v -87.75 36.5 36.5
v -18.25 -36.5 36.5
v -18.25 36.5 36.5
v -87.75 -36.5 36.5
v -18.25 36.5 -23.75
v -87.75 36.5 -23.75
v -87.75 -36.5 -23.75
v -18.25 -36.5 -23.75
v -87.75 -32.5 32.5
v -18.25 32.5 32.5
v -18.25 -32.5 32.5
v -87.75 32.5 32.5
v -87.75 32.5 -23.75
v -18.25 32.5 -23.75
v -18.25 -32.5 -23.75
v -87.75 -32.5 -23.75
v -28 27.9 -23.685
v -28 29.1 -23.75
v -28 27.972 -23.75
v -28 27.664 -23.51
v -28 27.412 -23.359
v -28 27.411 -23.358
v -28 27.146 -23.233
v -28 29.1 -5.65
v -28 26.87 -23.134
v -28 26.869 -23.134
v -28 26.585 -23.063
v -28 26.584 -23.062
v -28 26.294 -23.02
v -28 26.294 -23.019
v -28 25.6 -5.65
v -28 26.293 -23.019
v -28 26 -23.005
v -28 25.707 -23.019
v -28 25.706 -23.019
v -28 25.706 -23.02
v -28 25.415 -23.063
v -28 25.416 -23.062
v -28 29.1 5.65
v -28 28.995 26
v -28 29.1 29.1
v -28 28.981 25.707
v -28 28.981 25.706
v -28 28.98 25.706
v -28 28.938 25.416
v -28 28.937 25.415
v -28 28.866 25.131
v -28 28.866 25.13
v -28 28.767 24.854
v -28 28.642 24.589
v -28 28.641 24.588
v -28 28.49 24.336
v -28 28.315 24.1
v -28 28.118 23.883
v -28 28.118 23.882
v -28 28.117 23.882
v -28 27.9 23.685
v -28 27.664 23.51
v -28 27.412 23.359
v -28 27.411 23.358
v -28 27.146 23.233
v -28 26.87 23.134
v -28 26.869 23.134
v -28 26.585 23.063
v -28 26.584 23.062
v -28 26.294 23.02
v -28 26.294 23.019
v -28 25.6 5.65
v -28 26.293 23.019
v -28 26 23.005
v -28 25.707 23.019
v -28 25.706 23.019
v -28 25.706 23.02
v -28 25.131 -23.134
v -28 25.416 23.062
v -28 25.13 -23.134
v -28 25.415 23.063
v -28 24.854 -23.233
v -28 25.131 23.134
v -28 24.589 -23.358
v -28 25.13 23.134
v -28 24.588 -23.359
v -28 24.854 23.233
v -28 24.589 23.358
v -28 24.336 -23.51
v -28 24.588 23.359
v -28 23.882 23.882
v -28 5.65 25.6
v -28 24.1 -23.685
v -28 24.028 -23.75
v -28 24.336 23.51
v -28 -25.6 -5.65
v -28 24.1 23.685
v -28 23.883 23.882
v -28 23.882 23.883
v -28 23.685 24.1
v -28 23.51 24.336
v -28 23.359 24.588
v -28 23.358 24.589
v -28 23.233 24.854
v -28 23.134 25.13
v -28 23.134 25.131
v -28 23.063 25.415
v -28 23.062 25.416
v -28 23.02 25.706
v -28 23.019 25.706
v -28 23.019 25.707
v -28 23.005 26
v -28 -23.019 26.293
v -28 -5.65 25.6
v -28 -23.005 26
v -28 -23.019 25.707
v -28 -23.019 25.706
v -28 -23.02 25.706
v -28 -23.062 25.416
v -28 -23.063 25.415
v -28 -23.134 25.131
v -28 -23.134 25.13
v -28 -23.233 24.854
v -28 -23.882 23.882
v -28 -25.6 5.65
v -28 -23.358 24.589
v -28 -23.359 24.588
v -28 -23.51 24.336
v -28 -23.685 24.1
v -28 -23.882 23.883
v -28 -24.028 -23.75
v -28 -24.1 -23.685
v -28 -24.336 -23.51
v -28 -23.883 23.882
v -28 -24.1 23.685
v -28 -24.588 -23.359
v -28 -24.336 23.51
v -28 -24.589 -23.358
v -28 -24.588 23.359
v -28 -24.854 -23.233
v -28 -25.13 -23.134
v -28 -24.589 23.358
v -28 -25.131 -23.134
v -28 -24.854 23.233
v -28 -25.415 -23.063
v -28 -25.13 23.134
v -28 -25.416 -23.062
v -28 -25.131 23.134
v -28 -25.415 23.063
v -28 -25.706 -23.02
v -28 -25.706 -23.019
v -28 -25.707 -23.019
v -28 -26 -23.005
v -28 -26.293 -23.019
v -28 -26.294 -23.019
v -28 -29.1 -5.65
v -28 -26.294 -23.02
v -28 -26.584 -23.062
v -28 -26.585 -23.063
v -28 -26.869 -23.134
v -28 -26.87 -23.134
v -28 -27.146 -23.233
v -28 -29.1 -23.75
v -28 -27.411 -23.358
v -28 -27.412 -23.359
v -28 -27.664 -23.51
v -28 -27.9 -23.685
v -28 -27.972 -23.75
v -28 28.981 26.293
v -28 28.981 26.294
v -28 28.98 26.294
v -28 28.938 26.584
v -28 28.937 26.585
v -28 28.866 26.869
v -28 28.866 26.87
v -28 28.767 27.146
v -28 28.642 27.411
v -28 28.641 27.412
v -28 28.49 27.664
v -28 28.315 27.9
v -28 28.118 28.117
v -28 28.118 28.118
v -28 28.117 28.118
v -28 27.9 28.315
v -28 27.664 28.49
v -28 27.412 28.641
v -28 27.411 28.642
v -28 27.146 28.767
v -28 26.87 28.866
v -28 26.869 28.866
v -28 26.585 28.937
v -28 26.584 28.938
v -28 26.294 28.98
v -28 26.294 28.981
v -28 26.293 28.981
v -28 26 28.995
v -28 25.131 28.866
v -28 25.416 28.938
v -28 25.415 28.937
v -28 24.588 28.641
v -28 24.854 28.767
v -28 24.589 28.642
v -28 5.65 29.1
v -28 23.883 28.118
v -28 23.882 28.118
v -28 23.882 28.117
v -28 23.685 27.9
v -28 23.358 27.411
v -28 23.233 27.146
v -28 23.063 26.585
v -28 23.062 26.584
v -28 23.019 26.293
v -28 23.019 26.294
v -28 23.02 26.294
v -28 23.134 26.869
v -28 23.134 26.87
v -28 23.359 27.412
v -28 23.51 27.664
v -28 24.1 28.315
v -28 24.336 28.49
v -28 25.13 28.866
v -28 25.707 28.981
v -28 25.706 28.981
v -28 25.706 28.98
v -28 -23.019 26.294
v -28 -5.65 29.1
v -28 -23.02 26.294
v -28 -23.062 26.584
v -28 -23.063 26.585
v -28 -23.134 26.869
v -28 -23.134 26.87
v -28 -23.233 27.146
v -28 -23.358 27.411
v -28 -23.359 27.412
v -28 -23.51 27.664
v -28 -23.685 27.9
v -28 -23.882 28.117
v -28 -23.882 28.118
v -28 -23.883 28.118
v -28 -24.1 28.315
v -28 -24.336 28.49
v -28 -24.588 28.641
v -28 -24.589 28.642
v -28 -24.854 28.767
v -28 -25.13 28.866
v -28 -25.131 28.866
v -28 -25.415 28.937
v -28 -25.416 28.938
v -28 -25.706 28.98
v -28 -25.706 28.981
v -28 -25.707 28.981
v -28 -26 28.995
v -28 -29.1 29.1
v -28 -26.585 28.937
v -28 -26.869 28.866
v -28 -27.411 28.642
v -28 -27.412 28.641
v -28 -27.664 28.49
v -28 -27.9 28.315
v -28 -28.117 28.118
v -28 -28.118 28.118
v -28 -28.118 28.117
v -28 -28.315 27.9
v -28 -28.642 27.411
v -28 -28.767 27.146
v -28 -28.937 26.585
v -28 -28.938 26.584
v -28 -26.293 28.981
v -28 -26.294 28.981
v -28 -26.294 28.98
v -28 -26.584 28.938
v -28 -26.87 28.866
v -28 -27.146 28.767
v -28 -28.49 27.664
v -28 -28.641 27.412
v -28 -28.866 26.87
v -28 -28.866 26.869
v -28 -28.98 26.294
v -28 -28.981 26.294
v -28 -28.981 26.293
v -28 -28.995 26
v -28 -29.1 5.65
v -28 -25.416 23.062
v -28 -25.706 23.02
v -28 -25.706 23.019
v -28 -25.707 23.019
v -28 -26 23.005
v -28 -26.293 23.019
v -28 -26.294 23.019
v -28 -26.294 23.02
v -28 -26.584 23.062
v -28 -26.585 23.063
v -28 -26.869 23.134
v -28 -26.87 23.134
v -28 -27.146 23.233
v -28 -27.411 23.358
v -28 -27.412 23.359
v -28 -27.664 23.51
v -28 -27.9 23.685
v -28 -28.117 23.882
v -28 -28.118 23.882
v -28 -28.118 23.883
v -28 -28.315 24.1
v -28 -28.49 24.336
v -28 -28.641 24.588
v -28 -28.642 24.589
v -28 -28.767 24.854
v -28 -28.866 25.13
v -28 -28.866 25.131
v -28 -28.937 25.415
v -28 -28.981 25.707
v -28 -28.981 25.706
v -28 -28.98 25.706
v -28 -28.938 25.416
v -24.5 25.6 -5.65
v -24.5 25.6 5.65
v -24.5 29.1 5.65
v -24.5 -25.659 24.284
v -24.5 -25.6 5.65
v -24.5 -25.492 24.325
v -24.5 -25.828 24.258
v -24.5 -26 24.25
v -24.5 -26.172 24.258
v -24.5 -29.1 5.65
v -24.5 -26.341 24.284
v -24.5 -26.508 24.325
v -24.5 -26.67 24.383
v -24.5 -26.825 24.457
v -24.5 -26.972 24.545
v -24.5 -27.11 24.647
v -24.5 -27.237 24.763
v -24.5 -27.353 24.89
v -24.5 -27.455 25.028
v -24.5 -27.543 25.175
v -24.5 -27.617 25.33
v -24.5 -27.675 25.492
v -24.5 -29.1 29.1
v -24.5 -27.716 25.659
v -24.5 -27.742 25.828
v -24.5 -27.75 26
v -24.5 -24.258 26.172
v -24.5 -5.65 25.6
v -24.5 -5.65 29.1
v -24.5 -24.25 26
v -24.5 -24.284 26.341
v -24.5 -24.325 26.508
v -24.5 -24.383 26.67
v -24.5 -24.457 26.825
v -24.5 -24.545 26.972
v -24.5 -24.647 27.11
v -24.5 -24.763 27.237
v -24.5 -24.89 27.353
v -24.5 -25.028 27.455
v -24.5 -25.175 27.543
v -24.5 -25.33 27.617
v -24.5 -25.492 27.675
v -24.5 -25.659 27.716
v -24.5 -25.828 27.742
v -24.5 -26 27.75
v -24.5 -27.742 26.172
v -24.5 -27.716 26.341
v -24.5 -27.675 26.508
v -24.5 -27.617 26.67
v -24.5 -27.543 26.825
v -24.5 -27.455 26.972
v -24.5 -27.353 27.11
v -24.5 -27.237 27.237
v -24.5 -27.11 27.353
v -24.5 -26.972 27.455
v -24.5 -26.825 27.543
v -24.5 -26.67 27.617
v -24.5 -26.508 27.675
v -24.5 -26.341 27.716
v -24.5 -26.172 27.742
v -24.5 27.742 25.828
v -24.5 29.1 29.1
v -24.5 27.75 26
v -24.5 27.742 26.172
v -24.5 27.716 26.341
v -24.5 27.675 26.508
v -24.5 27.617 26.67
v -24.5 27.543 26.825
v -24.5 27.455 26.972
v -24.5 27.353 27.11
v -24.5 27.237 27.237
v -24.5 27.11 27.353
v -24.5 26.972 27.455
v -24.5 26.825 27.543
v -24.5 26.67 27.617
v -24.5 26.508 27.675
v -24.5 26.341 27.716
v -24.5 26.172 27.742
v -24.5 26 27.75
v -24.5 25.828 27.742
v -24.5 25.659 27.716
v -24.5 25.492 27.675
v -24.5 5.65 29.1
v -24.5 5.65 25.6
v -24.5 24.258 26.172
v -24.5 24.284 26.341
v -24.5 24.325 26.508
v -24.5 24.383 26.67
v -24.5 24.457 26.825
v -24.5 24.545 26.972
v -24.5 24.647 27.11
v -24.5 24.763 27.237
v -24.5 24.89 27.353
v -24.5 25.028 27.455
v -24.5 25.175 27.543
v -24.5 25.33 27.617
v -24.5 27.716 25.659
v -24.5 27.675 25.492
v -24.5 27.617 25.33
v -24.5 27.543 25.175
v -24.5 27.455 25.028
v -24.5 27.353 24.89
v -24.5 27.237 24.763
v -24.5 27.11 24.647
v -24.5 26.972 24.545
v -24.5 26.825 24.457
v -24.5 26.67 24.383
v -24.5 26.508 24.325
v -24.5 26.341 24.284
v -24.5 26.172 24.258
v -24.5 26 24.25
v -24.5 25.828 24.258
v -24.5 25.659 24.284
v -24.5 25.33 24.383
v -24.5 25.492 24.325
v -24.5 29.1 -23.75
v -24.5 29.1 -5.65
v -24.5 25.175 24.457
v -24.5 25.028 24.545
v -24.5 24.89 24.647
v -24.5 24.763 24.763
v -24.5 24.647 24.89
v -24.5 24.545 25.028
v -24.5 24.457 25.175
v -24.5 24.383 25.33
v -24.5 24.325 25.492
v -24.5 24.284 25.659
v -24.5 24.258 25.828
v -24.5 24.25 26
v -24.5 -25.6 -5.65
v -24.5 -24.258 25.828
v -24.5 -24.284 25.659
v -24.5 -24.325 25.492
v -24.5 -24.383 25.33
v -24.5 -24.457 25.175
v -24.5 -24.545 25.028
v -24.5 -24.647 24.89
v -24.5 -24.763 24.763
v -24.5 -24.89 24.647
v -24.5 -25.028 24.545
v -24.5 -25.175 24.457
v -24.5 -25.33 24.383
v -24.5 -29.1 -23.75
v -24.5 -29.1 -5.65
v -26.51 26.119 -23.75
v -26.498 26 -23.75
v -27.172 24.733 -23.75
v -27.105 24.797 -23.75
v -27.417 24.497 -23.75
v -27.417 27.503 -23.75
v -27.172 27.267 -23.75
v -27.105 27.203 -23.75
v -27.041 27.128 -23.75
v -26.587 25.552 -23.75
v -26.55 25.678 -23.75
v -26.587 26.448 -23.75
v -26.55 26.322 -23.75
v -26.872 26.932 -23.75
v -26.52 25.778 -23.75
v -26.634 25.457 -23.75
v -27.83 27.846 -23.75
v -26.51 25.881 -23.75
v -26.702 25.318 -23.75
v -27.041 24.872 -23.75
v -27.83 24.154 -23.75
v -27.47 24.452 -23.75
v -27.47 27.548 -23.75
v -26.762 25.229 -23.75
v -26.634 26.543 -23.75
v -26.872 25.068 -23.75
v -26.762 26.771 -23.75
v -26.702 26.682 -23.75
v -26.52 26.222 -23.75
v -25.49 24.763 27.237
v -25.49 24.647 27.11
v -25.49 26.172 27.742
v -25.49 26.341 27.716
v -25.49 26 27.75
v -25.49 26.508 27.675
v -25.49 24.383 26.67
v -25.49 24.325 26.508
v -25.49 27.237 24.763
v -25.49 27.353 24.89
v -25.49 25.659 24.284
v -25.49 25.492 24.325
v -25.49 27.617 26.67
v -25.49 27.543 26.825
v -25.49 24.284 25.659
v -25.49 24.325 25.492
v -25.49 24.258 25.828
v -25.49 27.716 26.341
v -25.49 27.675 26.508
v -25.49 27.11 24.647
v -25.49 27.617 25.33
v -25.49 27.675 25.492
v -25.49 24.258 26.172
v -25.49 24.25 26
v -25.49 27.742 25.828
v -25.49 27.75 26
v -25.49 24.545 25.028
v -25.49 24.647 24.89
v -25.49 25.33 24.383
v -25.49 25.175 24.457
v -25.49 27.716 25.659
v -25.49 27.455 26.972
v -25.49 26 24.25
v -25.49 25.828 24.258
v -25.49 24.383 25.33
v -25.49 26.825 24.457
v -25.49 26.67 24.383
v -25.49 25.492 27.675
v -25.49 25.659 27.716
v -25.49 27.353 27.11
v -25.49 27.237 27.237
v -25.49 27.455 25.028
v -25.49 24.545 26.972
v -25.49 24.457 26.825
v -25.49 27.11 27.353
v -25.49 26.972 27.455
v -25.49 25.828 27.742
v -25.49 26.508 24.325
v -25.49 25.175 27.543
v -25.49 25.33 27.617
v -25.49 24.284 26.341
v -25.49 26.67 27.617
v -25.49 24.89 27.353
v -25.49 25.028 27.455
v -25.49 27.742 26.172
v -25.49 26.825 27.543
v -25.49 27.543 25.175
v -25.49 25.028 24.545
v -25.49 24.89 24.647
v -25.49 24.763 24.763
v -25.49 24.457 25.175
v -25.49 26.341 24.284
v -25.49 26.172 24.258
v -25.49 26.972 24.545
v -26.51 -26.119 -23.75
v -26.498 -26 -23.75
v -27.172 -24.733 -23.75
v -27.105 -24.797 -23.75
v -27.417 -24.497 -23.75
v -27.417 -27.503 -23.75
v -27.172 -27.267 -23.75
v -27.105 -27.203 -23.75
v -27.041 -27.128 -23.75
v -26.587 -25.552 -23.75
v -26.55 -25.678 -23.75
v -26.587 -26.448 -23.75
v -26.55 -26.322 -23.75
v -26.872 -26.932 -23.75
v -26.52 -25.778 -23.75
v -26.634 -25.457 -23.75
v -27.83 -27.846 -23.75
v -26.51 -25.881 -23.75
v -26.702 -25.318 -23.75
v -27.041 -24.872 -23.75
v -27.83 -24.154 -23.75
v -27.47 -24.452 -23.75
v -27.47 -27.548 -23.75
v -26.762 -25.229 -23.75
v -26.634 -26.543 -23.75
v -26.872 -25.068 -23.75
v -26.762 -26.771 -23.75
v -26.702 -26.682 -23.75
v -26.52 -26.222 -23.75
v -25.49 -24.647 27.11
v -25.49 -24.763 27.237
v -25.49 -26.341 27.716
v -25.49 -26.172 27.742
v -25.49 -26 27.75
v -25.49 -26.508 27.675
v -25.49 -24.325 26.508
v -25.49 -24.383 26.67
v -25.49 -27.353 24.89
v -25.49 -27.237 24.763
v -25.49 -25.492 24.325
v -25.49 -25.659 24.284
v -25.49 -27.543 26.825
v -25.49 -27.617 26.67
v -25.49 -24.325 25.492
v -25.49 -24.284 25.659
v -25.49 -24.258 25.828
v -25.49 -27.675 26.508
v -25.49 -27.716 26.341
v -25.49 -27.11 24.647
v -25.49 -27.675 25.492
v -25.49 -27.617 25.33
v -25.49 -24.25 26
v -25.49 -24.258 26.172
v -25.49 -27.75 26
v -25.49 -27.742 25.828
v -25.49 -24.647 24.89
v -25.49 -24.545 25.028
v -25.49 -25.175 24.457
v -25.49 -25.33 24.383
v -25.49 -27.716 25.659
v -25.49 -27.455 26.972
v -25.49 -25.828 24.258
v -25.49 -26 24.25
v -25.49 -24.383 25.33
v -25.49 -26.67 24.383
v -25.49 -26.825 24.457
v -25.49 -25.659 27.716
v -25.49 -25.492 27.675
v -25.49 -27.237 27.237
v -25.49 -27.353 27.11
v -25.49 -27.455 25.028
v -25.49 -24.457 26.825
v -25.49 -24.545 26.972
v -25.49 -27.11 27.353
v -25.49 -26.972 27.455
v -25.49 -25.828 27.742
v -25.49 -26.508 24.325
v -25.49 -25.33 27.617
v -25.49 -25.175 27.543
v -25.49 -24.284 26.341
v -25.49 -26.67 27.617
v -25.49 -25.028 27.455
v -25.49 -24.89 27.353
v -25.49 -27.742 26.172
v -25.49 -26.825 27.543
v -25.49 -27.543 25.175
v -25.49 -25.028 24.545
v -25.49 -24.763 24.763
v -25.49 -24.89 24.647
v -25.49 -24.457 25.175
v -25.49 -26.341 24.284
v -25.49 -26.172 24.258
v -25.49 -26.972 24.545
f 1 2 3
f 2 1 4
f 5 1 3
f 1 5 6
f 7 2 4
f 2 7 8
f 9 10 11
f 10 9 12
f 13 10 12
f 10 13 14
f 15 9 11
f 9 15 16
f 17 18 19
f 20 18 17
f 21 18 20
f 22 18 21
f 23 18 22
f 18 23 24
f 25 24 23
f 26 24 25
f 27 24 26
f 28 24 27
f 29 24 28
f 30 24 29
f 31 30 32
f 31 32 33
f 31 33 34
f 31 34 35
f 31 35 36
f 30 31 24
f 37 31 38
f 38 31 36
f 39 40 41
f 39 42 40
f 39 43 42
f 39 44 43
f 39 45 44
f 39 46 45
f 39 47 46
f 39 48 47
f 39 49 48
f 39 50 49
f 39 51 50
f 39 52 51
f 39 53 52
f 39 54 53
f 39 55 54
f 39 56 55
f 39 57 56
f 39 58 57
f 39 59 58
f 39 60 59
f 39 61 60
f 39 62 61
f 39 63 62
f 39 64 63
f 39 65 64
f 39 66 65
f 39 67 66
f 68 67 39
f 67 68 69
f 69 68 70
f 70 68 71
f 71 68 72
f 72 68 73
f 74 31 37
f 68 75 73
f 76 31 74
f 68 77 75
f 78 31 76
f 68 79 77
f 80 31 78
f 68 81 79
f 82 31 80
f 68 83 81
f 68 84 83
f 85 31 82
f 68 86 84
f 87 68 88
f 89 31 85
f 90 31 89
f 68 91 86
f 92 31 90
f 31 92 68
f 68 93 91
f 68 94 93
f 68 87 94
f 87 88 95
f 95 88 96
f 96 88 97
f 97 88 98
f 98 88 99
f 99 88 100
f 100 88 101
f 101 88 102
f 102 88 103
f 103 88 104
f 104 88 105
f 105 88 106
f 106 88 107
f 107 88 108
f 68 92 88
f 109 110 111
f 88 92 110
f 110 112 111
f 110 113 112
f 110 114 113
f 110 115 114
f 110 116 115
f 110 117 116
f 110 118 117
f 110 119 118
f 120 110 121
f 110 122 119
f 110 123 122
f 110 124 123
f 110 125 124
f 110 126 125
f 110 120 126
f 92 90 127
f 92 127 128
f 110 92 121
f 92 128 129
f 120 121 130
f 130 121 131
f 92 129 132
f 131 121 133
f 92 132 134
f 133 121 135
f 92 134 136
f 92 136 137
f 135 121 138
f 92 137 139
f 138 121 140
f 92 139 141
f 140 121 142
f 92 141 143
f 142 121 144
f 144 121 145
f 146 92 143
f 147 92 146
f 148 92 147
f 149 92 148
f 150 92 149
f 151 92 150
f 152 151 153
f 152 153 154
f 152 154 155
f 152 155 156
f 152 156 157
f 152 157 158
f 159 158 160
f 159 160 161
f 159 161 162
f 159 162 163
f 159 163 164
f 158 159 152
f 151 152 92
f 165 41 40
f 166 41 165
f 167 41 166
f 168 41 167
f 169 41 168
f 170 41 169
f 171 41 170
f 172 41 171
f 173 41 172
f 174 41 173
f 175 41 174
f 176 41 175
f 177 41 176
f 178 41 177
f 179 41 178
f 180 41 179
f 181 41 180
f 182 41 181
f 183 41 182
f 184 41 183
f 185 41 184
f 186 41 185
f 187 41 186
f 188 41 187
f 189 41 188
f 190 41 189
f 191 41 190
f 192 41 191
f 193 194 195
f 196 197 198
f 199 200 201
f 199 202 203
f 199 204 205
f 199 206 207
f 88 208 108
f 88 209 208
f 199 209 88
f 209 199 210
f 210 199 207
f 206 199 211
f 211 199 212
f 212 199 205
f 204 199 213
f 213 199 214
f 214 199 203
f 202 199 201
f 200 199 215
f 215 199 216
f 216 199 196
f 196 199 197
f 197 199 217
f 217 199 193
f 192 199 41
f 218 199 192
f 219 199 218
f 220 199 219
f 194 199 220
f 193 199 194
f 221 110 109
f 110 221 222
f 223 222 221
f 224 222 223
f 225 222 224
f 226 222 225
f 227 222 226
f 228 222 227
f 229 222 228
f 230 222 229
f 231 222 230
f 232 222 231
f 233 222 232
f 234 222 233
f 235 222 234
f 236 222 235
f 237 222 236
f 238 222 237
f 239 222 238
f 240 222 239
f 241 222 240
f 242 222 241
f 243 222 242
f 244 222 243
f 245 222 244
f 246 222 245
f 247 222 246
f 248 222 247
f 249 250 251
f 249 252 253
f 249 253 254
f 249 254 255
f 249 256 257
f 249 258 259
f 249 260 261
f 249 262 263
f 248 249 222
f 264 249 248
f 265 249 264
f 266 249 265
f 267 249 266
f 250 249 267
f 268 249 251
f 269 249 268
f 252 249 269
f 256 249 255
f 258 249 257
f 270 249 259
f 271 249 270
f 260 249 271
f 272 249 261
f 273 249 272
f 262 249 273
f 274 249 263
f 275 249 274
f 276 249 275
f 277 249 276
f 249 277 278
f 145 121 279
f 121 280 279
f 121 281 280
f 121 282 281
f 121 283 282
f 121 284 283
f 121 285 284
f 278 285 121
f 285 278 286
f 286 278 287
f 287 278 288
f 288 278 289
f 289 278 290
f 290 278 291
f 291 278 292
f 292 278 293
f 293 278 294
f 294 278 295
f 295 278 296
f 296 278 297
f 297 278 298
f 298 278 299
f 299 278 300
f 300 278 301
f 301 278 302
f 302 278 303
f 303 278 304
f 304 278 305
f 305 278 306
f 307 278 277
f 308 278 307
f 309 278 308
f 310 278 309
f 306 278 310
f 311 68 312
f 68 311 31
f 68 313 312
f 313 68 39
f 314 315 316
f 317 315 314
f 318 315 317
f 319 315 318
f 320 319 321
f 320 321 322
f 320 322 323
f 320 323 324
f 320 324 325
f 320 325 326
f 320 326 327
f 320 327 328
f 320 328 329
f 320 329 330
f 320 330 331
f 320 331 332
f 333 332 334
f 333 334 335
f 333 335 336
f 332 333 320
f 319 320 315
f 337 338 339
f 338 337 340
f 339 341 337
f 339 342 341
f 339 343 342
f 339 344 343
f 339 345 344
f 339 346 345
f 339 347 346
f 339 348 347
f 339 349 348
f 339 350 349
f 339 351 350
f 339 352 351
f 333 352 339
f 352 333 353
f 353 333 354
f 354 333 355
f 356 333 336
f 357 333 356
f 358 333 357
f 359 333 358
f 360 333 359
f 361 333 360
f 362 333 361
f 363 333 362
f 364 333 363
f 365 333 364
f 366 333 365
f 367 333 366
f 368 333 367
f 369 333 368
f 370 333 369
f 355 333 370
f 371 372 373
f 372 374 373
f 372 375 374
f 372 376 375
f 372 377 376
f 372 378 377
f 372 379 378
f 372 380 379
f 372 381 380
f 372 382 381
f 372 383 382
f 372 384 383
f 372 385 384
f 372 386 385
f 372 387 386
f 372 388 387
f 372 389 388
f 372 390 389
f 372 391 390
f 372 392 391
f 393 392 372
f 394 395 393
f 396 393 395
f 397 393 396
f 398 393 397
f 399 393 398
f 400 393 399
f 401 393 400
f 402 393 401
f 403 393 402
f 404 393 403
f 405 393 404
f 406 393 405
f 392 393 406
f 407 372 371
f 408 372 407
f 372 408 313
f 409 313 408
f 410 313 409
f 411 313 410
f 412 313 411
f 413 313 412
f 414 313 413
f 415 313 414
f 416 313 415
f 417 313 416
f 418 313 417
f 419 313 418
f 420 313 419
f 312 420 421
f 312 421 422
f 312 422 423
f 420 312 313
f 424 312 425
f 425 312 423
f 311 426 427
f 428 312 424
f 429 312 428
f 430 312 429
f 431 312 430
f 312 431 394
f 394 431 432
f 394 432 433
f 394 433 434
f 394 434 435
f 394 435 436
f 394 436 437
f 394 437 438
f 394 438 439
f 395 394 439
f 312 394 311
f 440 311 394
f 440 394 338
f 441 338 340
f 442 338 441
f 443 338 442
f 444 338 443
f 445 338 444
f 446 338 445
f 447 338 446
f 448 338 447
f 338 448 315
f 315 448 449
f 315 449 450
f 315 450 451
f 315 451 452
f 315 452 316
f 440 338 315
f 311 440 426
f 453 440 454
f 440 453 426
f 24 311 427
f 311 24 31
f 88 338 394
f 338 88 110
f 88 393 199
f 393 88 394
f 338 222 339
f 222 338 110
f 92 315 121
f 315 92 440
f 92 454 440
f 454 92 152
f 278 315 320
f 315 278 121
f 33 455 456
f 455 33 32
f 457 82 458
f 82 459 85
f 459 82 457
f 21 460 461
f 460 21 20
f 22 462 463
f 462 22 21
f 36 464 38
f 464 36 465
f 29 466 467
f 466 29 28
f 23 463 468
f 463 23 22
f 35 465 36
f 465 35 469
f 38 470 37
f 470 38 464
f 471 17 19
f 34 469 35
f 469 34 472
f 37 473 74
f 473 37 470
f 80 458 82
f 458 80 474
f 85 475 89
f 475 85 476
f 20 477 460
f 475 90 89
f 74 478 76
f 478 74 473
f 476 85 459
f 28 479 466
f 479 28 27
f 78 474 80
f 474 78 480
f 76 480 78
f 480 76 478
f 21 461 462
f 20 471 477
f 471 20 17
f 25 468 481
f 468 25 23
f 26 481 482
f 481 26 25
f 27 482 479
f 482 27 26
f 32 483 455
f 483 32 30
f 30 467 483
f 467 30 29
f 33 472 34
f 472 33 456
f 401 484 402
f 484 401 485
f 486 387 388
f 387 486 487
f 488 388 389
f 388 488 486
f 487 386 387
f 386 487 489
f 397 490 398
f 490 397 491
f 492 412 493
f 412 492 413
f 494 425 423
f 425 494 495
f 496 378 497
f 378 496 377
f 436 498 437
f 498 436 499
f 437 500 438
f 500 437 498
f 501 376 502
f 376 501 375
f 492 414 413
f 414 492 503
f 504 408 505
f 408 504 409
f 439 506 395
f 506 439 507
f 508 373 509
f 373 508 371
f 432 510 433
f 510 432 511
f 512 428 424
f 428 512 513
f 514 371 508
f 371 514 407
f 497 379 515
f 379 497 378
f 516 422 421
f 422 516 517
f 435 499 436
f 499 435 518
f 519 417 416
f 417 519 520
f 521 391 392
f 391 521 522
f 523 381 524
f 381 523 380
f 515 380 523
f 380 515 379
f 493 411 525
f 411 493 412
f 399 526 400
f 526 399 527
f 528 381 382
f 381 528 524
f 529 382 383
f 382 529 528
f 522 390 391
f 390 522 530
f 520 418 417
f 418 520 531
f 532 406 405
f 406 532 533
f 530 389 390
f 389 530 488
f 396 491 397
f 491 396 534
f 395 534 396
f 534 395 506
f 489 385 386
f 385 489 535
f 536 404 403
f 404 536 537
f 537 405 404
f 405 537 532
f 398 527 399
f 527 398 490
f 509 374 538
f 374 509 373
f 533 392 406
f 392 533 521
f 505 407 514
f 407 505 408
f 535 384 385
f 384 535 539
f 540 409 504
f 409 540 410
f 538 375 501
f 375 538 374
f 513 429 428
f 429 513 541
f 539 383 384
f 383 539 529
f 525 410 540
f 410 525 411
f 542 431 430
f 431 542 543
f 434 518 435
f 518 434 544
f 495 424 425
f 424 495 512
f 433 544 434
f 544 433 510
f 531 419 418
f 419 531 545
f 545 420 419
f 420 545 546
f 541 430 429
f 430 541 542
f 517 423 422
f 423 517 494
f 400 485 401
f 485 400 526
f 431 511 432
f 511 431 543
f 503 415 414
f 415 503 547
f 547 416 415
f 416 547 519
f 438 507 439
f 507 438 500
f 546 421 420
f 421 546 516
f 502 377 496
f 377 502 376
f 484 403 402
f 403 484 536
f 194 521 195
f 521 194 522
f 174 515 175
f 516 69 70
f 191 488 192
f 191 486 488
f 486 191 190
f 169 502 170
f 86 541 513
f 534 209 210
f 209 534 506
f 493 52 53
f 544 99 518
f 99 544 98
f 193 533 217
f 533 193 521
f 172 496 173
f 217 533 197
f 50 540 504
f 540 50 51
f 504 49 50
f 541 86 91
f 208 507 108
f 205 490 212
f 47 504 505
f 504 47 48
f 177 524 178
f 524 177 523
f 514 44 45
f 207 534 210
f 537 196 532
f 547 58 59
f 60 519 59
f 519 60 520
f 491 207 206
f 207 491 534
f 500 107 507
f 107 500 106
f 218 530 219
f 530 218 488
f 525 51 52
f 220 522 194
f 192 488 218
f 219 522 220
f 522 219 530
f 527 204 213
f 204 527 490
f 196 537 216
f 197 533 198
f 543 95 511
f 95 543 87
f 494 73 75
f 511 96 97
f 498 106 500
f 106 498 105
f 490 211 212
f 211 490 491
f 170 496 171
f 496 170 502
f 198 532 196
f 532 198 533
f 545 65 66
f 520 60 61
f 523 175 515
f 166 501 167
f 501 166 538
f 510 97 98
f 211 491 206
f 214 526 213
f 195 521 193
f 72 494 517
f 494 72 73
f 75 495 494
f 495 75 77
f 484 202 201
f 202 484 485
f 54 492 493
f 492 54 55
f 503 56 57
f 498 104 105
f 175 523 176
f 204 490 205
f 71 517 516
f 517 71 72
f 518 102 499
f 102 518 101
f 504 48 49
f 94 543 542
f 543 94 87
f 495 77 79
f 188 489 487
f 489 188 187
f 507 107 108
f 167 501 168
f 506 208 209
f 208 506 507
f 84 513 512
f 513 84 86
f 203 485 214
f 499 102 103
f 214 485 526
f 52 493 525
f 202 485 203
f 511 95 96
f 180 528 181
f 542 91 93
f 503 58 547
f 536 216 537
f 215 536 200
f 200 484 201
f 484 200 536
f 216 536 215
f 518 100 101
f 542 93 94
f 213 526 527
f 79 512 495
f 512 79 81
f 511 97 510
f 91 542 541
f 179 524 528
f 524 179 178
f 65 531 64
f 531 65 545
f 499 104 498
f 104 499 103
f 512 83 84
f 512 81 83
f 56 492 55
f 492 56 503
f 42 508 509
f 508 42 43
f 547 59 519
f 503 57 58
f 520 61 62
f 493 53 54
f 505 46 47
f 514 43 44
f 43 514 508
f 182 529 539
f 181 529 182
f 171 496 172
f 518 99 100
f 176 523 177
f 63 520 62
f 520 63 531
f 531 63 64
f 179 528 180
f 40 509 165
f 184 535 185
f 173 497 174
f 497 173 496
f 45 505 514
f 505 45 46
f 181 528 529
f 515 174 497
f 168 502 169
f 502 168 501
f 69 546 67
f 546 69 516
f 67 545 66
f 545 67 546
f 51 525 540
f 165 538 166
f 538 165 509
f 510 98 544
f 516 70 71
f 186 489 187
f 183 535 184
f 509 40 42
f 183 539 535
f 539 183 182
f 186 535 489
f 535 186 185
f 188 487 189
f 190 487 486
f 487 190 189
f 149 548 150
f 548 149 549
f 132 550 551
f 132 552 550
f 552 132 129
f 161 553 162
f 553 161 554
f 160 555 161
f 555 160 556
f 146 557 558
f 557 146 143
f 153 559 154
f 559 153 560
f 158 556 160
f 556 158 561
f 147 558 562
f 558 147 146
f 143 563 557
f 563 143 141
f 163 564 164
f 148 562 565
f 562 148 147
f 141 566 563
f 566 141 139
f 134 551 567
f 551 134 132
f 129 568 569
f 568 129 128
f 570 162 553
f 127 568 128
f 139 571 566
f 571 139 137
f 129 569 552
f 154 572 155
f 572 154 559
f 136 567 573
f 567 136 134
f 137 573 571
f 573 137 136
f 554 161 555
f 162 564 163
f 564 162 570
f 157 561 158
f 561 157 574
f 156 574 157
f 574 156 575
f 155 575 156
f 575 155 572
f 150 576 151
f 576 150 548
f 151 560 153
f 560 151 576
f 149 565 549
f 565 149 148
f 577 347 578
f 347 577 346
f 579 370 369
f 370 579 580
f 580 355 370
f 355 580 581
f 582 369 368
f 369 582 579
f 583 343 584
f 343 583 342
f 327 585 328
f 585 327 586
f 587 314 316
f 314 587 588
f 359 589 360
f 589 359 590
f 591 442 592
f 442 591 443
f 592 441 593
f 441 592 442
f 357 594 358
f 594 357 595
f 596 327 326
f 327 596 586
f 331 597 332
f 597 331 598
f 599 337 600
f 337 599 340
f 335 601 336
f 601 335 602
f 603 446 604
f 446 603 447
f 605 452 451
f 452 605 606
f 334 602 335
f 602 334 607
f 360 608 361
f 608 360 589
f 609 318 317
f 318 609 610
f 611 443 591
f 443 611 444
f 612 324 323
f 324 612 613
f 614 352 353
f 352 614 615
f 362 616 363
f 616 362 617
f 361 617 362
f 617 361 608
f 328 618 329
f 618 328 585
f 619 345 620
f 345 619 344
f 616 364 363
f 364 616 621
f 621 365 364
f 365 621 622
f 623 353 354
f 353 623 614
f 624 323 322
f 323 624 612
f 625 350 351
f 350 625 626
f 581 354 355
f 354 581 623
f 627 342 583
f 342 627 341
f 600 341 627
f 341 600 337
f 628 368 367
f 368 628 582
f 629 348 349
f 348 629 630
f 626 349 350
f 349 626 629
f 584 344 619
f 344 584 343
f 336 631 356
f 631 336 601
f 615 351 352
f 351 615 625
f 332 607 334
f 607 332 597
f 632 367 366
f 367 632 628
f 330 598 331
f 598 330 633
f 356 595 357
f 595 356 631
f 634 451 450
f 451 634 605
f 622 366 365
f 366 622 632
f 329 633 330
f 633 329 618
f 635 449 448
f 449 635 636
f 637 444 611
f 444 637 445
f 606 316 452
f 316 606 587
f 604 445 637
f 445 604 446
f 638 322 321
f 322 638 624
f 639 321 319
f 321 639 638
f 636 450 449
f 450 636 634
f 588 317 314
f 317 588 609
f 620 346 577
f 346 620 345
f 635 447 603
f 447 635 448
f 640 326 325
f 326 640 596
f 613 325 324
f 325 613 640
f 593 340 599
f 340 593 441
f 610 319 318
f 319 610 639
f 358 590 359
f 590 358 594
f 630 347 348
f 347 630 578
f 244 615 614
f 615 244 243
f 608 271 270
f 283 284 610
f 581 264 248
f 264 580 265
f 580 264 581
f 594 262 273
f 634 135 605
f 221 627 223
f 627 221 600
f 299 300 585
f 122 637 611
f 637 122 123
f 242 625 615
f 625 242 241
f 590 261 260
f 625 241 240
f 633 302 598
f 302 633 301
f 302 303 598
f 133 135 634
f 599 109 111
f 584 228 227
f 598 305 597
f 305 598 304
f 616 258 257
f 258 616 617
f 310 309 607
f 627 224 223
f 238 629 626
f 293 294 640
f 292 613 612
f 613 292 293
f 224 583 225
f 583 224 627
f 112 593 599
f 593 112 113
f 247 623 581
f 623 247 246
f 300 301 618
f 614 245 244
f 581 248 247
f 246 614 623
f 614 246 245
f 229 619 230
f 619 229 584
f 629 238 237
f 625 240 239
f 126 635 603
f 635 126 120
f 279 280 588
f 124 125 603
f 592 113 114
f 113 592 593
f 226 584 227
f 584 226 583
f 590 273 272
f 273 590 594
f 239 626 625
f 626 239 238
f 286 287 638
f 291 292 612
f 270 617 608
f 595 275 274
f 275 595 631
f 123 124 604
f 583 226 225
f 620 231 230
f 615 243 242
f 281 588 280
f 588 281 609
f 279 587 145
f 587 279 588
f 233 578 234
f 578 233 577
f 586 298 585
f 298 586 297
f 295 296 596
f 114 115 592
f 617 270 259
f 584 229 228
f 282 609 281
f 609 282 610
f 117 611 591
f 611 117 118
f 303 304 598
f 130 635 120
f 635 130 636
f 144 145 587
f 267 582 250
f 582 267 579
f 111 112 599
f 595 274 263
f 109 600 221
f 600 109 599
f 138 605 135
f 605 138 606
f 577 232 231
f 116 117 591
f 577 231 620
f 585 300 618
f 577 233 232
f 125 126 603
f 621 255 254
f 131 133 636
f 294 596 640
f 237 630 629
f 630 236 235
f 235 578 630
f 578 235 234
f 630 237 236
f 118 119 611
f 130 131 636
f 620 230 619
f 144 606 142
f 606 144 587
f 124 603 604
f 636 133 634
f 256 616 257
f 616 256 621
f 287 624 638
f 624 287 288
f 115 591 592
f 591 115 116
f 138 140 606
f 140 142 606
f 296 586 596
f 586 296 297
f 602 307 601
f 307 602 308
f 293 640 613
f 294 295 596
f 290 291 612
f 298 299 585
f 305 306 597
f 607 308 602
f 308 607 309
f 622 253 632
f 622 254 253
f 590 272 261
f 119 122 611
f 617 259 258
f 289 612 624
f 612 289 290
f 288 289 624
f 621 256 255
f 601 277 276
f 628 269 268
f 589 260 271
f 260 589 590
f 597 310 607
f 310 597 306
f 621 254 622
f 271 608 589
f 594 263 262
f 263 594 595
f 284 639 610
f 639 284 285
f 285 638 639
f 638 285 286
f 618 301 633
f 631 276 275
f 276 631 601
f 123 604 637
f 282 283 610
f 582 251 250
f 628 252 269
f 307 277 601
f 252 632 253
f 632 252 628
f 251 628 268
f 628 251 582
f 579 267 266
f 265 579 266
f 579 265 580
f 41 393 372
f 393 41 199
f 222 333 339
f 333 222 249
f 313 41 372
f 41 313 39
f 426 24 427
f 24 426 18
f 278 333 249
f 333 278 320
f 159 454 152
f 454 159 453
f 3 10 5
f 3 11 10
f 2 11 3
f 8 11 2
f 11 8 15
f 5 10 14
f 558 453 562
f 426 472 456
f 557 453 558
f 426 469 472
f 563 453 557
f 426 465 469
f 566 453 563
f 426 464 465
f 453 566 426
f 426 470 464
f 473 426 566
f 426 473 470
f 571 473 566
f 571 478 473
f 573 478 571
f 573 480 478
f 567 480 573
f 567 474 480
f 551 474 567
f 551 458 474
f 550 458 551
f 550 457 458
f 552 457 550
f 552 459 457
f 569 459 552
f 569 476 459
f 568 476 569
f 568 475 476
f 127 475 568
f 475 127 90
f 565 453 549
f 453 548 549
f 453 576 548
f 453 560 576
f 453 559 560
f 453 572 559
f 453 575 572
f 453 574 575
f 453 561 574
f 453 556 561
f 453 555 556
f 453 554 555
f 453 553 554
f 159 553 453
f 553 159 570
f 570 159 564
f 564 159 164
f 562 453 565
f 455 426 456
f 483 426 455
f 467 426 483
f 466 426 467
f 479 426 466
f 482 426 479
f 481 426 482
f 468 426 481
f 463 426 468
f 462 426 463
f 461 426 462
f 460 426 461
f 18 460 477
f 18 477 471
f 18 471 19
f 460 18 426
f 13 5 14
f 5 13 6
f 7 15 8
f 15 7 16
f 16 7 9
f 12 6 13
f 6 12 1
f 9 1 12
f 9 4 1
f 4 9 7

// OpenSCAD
skip_main_render = true;
include <../../optical_setup.scad>

illumination_cell_top_u();
